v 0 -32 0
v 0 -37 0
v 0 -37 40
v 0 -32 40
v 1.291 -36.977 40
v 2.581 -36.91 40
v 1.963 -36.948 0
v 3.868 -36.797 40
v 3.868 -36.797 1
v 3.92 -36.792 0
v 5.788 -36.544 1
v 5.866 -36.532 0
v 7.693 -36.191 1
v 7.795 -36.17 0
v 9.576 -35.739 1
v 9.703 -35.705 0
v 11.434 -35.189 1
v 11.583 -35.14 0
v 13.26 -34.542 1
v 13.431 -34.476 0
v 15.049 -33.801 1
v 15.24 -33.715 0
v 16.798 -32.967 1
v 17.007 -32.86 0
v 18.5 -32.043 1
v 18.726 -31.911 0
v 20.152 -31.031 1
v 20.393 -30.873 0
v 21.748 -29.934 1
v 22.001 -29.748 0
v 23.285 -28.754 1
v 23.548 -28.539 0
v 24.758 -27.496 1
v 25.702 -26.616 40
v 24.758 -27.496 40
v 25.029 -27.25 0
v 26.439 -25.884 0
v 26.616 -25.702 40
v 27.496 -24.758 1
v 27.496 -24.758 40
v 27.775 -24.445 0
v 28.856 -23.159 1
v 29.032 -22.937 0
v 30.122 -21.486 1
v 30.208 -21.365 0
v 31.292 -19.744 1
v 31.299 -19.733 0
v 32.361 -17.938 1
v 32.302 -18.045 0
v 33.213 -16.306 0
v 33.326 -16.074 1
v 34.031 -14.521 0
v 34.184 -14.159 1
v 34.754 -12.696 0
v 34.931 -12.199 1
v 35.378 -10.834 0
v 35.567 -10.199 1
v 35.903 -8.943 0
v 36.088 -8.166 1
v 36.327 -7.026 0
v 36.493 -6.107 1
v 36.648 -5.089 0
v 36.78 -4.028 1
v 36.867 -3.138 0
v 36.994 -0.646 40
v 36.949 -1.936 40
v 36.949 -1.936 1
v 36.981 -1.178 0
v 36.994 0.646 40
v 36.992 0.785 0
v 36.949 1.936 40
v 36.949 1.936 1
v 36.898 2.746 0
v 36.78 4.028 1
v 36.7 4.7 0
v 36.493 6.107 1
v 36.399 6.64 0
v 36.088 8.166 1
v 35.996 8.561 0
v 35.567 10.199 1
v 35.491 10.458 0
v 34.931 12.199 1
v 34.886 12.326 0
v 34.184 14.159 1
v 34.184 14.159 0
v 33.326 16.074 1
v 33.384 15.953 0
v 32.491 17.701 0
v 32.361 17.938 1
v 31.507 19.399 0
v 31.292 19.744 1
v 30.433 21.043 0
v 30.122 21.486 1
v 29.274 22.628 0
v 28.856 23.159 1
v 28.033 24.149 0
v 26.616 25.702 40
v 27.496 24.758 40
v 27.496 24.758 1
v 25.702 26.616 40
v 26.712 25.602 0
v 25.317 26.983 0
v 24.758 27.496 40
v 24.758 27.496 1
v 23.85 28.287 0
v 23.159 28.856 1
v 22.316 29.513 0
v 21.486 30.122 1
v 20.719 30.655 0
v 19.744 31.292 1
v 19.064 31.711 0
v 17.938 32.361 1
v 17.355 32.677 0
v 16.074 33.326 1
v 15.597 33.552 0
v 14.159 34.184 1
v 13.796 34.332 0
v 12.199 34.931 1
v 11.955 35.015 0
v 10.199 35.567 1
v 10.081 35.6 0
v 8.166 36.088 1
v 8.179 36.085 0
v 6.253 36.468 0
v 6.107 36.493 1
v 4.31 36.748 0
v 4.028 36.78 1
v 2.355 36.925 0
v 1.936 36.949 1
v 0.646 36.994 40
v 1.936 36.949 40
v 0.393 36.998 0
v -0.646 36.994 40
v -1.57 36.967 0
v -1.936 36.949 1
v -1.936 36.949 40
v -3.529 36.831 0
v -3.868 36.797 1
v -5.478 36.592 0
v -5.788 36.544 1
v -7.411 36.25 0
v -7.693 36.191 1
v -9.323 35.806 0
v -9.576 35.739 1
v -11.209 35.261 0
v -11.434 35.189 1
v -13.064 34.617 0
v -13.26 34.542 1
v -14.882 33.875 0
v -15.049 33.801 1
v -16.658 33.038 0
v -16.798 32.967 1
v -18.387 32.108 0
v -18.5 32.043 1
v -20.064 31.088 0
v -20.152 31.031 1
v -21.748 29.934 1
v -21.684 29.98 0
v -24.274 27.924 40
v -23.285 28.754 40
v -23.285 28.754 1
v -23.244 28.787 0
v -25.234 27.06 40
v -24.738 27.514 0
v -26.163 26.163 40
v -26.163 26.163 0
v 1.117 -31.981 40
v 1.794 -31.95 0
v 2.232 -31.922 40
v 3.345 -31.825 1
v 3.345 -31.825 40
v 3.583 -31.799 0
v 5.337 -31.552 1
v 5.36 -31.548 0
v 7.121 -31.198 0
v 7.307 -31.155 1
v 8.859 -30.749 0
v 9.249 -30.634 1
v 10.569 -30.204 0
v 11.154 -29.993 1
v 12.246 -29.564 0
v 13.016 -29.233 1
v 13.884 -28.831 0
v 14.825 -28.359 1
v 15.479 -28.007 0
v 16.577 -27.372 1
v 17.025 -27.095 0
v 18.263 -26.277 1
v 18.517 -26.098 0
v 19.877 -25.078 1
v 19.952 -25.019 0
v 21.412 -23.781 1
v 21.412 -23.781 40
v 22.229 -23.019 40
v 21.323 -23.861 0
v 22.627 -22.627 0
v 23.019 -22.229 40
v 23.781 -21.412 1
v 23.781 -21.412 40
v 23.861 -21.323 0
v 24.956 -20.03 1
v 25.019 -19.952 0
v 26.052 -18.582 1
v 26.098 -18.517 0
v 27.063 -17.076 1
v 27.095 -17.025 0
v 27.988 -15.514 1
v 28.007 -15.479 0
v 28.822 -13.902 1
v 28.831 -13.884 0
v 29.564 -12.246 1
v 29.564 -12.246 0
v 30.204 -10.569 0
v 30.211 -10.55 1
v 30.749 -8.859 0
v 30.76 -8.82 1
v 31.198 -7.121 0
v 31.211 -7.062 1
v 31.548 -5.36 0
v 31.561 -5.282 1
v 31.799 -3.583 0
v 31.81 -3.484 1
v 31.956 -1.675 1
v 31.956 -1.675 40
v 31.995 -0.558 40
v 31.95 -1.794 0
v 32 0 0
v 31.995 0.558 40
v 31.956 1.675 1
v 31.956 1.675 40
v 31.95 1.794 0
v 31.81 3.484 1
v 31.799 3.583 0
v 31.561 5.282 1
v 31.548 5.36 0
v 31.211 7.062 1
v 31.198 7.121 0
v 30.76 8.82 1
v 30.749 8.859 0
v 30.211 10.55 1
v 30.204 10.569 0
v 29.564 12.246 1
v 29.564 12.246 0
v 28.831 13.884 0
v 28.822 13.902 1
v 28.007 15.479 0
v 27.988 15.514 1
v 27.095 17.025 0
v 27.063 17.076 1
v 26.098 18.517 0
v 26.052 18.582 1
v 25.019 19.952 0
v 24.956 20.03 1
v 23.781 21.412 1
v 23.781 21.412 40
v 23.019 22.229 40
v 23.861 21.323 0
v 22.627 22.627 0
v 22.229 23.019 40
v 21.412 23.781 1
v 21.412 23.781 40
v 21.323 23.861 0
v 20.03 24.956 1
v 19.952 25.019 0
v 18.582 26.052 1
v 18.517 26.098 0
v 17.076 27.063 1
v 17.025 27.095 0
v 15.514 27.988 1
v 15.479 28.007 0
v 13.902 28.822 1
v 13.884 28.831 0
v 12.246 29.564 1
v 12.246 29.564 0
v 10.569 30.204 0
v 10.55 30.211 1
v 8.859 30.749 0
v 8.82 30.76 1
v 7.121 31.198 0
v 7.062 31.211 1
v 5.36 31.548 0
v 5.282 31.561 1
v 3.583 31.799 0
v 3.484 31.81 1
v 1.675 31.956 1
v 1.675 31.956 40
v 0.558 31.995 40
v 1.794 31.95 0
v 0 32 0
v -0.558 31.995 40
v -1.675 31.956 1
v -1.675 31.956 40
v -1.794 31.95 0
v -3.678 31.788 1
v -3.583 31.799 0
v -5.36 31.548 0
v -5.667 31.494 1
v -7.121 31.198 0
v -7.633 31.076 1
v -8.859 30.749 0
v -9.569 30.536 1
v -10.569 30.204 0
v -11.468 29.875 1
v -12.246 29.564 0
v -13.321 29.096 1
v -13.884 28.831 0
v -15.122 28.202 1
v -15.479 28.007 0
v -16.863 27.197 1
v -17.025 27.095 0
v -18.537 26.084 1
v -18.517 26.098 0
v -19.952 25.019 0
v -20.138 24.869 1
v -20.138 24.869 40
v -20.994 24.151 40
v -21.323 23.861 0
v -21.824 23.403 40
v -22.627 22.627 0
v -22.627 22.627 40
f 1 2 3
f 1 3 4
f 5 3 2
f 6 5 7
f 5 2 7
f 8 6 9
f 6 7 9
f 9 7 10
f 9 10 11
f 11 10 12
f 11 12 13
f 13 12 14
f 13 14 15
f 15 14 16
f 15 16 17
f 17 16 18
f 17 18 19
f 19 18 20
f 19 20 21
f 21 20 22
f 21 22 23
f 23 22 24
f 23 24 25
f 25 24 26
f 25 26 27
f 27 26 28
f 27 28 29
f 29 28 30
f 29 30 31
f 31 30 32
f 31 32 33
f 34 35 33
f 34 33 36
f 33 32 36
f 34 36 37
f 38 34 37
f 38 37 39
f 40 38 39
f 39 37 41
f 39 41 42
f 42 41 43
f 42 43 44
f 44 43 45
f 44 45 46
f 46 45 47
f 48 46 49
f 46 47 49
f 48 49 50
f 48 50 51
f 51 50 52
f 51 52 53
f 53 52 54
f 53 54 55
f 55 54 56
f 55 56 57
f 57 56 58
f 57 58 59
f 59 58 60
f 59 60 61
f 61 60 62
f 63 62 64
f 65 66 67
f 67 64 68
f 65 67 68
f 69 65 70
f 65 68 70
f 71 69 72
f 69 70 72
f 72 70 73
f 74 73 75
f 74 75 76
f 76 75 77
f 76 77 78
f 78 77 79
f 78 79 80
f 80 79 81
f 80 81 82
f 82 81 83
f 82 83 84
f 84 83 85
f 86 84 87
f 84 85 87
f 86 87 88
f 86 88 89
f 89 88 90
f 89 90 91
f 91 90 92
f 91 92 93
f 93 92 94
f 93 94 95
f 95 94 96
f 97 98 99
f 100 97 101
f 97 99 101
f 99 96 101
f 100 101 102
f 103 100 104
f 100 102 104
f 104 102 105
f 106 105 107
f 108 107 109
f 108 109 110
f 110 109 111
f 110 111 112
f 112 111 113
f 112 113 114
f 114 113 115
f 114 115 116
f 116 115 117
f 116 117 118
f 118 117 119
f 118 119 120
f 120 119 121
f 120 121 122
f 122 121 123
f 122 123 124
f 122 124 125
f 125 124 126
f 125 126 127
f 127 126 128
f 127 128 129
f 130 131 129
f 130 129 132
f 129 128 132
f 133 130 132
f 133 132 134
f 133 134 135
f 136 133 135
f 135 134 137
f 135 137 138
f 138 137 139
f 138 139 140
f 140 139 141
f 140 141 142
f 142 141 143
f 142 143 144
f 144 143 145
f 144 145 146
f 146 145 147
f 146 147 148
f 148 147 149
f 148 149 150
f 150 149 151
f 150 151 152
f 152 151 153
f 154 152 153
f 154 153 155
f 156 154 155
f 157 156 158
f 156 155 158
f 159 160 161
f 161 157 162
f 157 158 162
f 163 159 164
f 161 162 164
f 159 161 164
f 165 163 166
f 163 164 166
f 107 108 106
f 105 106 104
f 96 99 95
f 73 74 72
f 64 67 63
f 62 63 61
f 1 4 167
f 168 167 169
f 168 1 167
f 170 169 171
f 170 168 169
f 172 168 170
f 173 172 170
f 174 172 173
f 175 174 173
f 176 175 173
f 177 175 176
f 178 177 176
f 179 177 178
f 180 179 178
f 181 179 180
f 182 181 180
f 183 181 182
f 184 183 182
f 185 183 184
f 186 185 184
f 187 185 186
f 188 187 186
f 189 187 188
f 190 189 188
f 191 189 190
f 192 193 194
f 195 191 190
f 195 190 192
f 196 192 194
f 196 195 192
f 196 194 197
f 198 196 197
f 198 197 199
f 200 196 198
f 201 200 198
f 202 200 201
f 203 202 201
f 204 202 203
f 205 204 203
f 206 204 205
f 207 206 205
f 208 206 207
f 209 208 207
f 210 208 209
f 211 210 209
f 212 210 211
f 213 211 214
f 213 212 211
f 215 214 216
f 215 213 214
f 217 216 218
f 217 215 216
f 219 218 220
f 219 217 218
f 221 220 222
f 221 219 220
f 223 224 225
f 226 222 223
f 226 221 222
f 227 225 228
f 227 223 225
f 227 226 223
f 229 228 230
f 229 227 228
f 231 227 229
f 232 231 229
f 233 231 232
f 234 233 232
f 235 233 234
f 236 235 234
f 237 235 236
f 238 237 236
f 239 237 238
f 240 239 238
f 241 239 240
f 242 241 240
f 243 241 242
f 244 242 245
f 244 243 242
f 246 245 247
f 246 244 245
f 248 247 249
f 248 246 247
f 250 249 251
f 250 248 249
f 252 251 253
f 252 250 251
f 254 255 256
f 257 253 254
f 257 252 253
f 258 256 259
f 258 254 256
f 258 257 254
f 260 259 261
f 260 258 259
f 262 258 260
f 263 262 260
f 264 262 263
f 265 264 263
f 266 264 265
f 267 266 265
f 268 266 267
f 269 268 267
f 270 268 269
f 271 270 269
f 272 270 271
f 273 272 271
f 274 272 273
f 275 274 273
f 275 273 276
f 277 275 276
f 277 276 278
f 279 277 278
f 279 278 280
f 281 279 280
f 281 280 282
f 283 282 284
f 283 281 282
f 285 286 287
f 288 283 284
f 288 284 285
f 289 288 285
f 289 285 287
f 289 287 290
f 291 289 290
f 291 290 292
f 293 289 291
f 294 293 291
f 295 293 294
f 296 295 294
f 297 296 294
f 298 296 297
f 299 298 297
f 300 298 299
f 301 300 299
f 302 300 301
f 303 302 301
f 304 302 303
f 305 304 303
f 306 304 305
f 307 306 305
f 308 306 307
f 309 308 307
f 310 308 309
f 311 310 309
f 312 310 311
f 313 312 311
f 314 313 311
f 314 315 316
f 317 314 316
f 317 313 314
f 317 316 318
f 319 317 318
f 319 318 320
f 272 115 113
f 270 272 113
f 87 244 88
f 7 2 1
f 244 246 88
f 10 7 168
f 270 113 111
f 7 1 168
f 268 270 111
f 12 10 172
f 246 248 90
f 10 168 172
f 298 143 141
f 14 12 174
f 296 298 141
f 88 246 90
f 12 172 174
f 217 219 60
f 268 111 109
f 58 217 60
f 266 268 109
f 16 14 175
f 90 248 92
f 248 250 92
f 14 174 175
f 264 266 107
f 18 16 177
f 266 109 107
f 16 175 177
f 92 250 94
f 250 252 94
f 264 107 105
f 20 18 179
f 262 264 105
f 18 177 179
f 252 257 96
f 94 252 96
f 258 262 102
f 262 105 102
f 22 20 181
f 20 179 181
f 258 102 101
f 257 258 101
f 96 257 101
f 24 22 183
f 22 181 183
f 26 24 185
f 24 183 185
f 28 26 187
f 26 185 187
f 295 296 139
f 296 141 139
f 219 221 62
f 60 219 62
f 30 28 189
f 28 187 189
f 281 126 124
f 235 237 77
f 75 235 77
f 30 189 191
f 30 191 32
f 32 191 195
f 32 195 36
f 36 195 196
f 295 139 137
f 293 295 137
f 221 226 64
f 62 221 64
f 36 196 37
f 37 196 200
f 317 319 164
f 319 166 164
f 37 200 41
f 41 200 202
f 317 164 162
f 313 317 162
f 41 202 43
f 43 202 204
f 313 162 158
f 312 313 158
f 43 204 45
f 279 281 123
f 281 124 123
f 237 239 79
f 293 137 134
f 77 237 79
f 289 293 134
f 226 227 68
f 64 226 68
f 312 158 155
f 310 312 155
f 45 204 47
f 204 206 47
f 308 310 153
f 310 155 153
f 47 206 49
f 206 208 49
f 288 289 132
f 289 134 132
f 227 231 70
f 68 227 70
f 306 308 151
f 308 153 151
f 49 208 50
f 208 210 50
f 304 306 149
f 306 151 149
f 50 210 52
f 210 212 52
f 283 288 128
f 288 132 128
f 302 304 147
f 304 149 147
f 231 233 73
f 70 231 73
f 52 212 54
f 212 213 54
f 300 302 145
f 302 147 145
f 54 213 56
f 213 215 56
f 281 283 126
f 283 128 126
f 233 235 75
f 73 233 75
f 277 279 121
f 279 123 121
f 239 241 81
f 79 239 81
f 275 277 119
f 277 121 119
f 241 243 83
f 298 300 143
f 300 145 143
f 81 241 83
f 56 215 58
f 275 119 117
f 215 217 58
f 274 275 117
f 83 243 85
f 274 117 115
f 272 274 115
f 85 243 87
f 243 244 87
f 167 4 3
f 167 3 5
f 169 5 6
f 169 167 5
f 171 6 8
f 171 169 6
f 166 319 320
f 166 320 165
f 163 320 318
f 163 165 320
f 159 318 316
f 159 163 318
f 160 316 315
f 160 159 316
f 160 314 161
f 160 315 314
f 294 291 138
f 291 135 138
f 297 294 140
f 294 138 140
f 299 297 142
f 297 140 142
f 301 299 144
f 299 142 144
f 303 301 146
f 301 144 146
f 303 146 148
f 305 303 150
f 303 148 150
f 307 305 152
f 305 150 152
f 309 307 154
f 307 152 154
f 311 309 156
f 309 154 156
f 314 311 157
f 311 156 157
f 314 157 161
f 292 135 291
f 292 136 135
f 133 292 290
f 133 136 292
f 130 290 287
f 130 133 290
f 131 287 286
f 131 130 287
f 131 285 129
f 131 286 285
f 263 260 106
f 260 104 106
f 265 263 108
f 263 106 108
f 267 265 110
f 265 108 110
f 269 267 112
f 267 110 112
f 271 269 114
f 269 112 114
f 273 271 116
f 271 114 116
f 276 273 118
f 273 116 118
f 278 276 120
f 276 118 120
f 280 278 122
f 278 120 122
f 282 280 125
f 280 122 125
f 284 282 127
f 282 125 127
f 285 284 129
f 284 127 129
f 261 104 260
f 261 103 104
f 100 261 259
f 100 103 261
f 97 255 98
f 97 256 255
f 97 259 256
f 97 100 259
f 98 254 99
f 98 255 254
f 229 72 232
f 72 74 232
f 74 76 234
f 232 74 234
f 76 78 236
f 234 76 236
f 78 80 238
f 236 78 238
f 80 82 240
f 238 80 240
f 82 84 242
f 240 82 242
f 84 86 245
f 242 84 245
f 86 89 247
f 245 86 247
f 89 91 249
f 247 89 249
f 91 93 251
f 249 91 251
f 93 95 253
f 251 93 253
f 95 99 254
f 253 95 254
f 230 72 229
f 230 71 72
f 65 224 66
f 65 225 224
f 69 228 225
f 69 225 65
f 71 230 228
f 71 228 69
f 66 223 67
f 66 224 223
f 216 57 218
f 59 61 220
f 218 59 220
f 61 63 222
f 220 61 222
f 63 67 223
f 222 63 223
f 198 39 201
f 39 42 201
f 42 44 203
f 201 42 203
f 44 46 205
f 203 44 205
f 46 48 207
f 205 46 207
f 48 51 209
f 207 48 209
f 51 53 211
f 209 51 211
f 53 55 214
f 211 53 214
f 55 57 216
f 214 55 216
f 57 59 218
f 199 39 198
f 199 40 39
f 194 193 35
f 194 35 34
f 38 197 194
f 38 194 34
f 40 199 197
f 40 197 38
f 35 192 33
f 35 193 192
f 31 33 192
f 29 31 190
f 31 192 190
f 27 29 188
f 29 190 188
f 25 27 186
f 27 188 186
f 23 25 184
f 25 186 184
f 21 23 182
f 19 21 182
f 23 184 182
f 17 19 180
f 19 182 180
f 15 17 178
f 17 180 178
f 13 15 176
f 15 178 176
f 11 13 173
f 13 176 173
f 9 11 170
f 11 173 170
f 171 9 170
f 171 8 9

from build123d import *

# Parameters (mm, degrees)
PAD_DEPTH    = 40
POCKET_DEPTH = 39


with BuildPart() as part:
    # Sketch → Pad (new body)
    with BuildSketch(Plane.XY):
        with BuildLine():
            ThreePointArc((0, -37), (34.183543, 14.159287), (-26.162951, 26.162951))
            Line((-22.627417, 22.627417), (-26.162951, 26.162951))
            ThreePointArc((0, -32), (29.564145, 12.24587), (-22.627417, 22.627417))
            Line((0, -37), (0, -32))
        make_face()
    extrude(amount=PAD_DEPTH)

    # Sketch001 → Pocket (cut)
    with BuildSketch(Plane.XY.offset(40)):
        Polygon((0, 0), (-30.679579, 37.886125), (-2.393788, 45.676197), align=None)
        Polygon((0, 0), (2.341637, 44.681104), (37.049321, 41.14744), align=None)
        Polygon((0, 0), (39.999108, 36.015358), (48.030265, 2.51716), align=None)
        Polygon((0, 0), (49.461223, -2.592153), (39.264005, -35.353469), align=None)
        Polygon((0, 0), (33.741126, -37.473316), (4.909112, -46.707078), align=None)
    extrude(amount=-POCKET_DEPTH, mode=Mode.SUBTRACT)


solid = part.part
